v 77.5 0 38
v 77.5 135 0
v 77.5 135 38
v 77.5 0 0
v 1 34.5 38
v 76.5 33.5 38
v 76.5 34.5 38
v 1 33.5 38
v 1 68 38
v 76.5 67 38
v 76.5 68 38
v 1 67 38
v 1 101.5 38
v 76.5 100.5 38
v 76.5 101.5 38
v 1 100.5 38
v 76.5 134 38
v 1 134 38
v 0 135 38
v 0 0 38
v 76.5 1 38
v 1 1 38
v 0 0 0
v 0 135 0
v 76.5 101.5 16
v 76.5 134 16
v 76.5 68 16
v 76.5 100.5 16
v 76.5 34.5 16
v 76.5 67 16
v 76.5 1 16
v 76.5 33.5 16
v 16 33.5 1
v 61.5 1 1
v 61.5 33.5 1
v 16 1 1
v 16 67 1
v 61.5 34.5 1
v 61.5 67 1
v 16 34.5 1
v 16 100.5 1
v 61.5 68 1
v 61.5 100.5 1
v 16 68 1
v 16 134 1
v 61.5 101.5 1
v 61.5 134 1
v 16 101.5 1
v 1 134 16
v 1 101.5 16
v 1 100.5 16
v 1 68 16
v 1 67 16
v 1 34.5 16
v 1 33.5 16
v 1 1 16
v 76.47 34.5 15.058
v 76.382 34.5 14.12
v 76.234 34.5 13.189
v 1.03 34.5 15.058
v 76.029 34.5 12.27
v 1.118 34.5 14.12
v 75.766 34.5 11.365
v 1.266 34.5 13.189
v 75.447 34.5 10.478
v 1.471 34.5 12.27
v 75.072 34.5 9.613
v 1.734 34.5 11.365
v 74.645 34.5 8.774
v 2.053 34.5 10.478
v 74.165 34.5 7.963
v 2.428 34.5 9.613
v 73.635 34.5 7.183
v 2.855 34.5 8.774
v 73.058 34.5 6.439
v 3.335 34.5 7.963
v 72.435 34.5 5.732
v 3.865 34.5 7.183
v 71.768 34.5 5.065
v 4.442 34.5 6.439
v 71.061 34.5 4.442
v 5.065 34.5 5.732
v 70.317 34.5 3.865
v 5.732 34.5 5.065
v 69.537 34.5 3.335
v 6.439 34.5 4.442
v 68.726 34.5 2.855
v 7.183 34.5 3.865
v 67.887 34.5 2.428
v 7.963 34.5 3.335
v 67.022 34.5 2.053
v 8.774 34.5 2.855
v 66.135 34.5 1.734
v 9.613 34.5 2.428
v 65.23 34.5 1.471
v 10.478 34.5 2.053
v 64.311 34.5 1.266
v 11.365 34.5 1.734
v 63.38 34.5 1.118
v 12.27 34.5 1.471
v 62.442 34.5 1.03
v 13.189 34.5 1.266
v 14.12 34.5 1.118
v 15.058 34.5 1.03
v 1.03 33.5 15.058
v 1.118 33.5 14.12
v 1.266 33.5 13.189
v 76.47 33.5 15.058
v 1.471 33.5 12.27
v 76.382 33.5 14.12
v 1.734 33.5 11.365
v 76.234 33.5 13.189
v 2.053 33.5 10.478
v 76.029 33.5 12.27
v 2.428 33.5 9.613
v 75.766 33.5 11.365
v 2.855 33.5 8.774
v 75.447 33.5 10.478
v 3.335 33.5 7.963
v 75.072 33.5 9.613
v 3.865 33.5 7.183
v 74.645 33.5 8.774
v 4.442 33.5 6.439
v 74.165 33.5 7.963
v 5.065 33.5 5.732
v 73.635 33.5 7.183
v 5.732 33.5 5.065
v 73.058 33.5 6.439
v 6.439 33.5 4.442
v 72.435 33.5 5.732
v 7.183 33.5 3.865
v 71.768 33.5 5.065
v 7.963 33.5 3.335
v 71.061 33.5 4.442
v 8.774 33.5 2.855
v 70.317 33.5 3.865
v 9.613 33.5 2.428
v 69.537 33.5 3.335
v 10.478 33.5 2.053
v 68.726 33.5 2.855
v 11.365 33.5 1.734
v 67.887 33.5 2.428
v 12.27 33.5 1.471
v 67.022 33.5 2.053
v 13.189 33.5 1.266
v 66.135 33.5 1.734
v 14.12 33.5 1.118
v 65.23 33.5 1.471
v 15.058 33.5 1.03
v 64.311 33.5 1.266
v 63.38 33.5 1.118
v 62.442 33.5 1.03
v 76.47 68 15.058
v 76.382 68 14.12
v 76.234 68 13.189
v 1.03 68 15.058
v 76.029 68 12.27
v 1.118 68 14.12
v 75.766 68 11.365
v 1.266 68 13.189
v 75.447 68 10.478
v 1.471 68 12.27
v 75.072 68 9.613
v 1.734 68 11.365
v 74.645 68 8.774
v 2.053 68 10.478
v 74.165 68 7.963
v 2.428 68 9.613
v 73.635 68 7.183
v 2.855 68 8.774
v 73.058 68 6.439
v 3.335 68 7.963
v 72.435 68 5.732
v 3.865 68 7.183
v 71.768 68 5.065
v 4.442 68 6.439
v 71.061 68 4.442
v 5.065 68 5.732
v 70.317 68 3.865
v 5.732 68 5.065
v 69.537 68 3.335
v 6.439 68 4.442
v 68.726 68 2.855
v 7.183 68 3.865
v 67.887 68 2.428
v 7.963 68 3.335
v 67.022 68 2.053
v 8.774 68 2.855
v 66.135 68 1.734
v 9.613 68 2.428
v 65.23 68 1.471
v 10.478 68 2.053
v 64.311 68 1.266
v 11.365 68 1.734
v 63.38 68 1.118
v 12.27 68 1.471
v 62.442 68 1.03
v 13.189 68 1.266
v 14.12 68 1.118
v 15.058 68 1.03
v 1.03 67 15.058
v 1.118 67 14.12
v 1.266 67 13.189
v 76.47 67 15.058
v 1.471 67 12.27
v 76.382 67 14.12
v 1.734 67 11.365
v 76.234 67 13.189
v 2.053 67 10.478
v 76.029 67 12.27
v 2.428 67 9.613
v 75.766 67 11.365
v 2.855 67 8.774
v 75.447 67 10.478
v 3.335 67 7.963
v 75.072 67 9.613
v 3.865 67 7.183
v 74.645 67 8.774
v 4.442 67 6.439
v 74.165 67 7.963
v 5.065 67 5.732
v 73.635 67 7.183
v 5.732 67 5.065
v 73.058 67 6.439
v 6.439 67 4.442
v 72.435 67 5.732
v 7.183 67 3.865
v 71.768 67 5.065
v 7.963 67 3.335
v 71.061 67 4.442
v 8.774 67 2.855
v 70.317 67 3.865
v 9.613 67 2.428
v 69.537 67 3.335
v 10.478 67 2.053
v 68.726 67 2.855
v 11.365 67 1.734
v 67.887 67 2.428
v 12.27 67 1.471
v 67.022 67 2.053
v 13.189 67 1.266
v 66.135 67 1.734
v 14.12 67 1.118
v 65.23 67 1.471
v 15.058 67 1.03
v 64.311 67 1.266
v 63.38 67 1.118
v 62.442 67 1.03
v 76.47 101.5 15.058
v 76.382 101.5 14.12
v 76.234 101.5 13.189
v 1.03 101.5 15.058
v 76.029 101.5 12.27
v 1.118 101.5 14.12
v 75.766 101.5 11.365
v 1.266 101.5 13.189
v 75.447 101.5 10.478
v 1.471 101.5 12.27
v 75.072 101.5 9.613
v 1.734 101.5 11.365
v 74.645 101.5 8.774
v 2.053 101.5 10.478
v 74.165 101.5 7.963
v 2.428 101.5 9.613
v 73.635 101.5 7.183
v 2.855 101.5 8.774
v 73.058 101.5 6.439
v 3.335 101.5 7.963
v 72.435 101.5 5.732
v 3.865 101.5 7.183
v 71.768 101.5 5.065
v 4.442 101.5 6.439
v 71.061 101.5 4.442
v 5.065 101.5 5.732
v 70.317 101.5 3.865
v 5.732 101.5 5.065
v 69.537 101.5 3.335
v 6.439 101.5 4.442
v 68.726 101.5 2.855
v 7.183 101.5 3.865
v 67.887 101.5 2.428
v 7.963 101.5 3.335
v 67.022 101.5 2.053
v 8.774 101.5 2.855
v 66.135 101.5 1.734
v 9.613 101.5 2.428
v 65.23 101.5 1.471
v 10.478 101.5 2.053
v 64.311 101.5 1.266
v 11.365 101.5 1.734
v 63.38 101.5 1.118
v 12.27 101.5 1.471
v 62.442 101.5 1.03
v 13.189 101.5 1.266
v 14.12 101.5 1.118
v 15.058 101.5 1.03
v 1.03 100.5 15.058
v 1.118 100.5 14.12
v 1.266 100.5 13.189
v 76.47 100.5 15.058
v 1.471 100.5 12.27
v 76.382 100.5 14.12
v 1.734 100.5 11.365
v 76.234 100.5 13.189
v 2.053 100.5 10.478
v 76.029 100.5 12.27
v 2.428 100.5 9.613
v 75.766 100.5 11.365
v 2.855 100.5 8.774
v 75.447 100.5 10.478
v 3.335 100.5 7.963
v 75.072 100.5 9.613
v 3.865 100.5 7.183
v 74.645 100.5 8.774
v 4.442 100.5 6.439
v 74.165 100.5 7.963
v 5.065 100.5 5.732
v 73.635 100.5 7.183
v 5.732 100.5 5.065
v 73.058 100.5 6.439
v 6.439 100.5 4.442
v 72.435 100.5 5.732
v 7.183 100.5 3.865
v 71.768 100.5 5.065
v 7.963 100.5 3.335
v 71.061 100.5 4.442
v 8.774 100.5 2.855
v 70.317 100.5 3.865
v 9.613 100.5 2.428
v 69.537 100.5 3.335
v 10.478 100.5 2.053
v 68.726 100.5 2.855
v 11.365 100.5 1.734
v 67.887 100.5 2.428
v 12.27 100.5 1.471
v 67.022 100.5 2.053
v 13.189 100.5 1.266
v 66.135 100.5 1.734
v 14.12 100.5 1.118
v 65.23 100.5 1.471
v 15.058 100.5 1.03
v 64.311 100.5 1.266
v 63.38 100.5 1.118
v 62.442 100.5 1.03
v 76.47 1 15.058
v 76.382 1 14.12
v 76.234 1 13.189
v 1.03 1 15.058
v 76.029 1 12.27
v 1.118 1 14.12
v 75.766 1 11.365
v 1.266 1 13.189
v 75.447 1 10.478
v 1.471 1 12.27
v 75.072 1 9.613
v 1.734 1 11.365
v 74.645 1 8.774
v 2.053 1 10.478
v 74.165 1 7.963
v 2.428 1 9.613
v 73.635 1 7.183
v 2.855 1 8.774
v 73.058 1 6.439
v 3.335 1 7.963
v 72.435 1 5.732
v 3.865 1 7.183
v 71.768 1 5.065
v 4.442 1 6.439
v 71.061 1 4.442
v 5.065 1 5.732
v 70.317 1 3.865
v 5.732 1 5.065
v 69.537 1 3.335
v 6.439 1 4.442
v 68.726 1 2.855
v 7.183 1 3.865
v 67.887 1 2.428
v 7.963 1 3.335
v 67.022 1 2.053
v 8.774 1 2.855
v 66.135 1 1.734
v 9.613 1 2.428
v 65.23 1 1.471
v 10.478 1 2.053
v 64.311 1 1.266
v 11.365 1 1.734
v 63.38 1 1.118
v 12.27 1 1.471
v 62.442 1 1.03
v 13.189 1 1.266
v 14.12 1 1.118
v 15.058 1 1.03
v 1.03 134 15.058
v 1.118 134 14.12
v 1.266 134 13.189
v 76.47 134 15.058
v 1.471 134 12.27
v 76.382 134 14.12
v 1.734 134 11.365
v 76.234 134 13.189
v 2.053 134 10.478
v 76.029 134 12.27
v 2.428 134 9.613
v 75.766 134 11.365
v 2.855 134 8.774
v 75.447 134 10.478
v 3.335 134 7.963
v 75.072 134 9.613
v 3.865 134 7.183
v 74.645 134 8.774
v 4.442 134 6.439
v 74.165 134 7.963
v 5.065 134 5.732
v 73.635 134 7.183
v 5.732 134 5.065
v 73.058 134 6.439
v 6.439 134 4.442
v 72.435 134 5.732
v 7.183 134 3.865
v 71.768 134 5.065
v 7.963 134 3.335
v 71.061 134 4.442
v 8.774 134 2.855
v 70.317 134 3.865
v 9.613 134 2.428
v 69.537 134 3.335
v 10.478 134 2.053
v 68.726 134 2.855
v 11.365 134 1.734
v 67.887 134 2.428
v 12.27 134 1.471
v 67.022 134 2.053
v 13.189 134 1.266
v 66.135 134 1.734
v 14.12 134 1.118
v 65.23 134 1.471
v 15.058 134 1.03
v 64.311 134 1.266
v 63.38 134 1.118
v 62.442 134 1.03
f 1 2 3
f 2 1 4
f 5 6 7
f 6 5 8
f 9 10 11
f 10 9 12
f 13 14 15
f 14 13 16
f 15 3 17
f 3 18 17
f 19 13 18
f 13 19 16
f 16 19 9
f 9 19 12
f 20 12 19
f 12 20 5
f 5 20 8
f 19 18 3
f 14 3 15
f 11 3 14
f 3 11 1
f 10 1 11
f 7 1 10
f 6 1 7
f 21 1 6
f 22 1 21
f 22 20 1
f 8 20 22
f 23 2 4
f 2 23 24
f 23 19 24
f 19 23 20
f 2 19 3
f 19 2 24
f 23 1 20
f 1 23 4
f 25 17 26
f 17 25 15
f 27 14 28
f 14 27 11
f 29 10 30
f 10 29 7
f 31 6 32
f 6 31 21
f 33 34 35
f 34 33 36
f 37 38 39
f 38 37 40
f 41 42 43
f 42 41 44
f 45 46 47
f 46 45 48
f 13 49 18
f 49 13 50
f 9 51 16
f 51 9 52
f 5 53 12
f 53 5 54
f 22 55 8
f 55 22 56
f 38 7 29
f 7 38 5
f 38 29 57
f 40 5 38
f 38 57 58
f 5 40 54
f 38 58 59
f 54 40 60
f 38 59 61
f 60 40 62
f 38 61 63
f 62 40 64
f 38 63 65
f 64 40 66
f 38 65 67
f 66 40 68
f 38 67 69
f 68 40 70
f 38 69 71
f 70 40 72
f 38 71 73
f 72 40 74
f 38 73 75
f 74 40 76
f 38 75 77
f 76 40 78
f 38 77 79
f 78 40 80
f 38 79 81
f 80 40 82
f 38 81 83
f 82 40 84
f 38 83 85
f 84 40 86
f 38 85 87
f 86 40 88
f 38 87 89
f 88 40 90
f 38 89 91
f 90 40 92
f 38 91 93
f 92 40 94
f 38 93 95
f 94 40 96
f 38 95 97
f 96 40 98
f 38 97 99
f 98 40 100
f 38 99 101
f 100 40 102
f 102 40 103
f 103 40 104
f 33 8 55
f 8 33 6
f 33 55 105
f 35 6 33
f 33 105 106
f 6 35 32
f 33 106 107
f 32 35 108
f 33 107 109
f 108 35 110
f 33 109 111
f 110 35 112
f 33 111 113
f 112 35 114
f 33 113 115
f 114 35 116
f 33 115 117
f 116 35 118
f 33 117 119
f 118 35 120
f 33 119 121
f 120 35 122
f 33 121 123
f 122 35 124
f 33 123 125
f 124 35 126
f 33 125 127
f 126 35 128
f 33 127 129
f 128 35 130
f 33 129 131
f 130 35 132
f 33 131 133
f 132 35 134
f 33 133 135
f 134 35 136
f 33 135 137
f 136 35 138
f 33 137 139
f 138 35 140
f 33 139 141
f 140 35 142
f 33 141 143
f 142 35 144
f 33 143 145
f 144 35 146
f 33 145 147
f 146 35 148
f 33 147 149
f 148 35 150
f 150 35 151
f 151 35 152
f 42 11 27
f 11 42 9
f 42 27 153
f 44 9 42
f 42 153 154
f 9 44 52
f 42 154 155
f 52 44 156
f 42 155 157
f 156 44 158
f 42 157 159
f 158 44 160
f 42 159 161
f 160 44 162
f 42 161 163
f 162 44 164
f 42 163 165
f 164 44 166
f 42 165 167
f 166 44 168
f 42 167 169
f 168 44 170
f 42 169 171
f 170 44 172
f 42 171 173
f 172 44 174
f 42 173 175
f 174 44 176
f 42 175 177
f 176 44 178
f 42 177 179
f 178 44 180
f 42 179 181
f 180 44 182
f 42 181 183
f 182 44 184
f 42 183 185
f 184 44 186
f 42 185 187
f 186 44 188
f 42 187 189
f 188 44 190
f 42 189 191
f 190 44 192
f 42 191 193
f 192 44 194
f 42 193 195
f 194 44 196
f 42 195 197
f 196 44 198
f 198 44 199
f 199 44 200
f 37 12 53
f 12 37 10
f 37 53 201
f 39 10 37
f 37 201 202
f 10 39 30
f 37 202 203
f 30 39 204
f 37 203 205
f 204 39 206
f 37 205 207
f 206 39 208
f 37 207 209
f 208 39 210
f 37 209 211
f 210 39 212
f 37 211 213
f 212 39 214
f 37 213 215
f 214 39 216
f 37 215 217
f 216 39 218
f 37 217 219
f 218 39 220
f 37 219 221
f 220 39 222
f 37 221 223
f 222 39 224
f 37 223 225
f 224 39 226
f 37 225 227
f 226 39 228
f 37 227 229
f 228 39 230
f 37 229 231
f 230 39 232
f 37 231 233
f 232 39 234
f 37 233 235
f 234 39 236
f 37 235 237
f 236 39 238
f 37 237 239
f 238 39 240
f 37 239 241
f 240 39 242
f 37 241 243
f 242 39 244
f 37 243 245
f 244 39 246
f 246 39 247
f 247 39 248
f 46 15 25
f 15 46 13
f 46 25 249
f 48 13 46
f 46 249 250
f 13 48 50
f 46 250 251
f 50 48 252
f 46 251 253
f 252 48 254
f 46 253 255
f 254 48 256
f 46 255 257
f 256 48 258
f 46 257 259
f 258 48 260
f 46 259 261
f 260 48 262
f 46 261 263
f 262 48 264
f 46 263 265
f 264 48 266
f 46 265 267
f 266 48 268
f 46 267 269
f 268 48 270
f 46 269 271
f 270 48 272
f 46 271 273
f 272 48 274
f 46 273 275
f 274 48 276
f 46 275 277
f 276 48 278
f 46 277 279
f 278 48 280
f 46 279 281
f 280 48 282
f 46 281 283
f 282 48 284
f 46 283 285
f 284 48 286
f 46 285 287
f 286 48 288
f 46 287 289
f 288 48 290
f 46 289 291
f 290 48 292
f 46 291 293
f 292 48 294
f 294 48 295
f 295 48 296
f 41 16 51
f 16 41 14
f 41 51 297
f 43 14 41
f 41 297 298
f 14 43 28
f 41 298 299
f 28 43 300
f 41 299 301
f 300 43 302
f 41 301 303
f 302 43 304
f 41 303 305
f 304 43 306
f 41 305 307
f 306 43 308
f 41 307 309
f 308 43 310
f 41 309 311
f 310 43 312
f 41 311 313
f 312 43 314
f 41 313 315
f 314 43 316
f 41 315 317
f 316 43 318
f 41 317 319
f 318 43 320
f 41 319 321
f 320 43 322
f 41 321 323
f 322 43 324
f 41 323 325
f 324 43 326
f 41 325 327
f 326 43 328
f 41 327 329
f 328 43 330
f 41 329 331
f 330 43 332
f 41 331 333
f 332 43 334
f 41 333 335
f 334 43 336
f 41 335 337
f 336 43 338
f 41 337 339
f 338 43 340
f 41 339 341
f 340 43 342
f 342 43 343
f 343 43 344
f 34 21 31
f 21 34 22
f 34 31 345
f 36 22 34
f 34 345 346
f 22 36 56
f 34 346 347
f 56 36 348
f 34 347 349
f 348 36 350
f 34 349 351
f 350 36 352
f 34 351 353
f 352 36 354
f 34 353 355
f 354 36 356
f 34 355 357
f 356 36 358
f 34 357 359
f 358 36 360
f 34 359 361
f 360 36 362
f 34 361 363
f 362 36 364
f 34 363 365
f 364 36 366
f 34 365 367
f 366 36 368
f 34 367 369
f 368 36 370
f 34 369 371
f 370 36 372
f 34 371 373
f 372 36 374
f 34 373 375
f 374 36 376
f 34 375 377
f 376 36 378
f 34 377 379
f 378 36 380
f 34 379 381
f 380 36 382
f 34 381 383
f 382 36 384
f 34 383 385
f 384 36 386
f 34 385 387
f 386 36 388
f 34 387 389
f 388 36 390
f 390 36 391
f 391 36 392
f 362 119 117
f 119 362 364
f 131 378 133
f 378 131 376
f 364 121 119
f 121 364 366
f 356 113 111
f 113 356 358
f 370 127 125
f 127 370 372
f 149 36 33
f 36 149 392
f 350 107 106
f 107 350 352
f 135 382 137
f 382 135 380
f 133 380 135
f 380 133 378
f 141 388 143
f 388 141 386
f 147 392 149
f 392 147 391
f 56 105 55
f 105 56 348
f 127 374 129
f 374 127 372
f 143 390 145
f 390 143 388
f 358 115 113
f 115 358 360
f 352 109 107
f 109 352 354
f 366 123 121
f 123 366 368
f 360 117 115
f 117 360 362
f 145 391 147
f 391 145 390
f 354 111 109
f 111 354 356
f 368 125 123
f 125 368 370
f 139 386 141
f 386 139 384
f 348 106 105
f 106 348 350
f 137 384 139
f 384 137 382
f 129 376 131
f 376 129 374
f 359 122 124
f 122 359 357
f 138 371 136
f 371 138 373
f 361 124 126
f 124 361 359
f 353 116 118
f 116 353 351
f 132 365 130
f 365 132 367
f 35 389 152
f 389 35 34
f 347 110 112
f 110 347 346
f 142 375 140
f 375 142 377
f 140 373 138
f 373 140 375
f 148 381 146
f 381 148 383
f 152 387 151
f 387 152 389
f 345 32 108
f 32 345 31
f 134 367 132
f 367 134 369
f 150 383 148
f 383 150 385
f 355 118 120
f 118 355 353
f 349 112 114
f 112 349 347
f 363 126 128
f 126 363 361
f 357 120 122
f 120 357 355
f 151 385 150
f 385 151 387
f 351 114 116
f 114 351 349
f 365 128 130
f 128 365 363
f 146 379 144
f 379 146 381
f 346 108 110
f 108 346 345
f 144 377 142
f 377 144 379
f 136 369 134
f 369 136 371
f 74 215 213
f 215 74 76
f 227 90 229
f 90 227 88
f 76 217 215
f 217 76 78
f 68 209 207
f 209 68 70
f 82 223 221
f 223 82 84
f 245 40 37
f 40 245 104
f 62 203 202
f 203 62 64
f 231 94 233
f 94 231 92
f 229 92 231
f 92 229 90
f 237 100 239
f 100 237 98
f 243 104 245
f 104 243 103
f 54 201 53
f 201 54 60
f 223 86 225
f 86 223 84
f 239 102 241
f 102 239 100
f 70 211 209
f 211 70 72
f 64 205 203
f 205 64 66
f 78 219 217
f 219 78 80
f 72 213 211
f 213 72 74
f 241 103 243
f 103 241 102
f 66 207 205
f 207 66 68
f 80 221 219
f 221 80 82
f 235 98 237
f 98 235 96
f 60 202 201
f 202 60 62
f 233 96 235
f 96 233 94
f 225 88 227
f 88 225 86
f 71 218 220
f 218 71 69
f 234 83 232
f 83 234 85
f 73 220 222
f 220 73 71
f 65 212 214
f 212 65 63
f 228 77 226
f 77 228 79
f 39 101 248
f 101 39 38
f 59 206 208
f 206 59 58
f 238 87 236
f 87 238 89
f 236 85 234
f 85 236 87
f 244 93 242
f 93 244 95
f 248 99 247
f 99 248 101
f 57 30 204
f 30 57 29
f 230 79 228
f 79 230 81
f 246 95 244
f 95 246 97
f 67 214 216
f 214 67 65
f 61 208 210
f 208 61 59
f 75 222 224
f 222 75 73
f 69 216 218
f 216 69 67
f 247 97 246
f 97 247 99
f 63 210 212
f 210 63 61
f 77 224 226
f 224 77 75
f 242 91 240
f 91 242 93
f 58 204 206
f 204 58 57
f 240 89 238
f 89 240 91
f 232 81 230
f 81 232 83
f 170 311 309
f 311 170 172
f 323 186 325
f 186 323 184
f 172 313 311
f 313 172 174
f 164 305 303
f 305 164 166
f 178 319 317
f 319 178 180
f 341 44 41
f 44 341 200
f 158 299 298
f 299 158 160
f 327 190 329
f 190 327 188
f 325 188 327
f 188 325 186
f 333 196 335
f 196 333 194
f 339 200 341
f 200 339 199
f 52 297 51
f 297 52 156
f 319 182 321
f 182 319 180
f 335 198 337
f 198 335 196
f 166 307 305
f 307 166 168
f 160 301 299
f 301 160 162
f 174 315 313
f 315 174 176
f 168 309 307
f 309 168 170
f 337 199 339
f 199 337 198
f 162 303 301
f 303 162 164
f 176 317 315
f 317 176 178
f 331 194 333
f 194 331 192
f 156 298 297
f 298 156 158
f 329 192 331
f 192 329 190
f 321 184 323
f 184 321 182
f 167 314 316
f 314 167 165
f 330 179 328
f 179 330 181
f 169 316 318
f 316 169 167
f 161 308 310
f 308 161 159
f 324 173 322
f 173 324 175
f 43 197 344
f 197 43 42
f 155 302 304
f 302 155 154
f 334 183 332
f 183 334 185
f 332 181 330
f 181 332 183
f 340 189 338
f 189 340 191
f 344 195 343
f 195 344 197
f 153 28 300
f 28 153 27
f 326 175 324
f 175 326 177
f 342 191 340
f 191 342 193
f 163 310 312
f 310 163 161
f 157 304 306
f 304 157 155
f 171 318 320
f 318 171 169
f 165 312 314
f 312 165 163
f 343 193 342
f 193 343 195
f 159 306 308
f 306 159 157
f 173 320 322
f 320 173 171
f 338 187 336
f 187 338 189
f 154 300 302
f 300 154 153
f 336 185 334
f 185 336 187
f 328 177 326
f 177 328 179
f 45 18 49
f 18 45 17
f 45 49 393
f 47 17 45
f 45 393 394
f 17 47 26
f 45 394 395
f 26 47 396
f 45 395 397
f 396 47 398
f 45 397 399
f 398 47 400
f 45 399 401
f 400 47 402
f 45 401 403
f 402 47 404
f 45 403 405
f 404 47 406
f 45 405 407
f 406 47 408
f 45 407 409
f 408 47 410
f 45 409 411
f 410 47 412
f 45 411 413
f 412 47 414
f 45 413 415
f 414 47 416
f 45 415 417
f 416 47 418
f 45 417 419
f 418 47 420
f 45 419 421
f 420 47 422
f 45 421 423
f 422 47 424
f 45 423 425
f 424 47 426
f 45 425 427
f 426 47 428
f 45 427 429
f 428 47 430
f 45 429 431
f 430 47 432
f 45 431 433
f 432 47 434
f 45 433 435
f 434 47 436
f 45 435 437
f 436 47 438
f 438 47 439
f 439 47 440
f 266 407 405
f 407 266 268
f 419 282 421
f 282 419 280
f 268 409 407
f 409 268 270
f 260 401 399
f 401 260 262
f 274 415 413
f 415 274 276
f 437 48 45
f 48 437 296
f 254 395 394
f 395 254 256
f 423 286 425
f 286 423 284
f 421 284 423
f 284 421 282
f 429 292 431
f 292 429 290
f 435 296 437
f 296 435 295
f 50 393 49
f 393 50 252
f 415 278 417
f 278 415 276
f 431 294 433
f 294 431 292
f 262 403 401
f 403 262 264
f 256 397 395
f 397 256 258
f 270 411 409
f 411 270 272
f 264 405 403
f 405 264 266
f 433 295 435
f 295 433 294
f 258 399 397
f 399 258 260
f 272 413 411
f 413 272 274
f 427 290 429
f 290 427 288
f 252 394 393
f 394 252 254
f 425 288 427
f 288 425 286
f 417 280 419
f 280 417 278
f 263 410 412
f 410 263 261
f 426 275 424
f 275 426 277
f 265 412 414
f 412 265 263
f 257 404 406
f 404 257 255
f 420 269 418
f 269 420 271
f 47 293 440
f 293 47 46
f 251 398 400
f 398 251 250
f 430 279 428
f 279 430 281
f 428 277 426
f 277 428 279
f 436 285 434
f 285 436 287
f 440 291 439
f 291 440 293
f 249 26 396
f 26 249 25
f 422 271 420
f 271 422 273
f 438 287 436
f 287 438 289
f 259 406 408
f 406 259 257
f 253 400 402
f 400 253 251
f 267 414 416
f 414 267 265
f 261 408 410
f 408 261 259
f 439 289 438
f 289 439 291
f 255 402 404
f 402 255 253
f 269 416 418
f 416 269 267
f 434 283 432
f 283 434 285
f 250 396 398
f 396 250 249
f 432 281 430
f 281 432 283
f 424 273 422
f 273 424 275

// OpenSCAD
include <boardgame_insert_toolkit_lib.2.scad>;

// determines whether lids are output.
g_b_print_lid = true;

// determines whether boxes are output.
g_b_print_box = true; 

// Focus on one box
g_isolated_print_box = ""; 

// Used to visualize how all of the boxes fit together. 
g_b_visualization = false;          
        
// this is the outer wall thickness. 
//Default = 1.5mm
g_wall_thickness = 1.0;

// The tolerance value is extra space put between planes of the lid and box that fit together.
// Increase the tolerance to loosen the fit and decrease it to tighten it.
//
// Note that the tolerance is applied exclusively to the lid.
// So if the lid is too tight or too loose, change this value ( up for looser fit, down for tighter fit ) and 
// you only need to reprint the lid.
// 
// The exception is the stackable box, where the bottom of the box is the lid of the box below,
// in which case the tolerance also affects that box bottom.
//
g_tolerance = 0.15;

// This adjusts the position of the lid detents downward. 
// The larger the value, the bigger the gap between the lid and the box.
g_tolerance_detents_pos = 0.1;

aw_size_x = 77.5; // 180.0; // 308.0 - 40.0 - 40.0 - 24.0 - 24.0 - 24.0 = 156 (minus two for division by 3) = 156;
aw_size_y = 135.0;
aw_size_z = 38.0;


data =
  [
    [
      "simple box",
      [
        [ BOX_SIZE_XYZ, [aw_size_x, aw_size_y, aw_size_z] ],
        [ BOX_NO_LID_B, t],
        [
          BOX_COMPONENT,
          [
            [
              CMP_COMPARTMENT_SIZE_XYZ,
              [
                (aw_size_x - 1.0 - 1.0),
                (aw_size_y - 1.0 - 1.0 - 1.0 - 1.0 - 1.0) / 4.0,
                aw_size_z - g_wall_thickness
              ]
            ],
            [ CMP_NUM_COMPARTMENTS_XY, [1, 4] ],
            [ CMP_SHAPE, FILLET ],
            [ CMP_FILLET_RADIUS, 15.0 ],
            [ POSITION_XY, [0, CENTER] ],
          ]
        ],
      ]
    ]
  ];

MakeAll();
